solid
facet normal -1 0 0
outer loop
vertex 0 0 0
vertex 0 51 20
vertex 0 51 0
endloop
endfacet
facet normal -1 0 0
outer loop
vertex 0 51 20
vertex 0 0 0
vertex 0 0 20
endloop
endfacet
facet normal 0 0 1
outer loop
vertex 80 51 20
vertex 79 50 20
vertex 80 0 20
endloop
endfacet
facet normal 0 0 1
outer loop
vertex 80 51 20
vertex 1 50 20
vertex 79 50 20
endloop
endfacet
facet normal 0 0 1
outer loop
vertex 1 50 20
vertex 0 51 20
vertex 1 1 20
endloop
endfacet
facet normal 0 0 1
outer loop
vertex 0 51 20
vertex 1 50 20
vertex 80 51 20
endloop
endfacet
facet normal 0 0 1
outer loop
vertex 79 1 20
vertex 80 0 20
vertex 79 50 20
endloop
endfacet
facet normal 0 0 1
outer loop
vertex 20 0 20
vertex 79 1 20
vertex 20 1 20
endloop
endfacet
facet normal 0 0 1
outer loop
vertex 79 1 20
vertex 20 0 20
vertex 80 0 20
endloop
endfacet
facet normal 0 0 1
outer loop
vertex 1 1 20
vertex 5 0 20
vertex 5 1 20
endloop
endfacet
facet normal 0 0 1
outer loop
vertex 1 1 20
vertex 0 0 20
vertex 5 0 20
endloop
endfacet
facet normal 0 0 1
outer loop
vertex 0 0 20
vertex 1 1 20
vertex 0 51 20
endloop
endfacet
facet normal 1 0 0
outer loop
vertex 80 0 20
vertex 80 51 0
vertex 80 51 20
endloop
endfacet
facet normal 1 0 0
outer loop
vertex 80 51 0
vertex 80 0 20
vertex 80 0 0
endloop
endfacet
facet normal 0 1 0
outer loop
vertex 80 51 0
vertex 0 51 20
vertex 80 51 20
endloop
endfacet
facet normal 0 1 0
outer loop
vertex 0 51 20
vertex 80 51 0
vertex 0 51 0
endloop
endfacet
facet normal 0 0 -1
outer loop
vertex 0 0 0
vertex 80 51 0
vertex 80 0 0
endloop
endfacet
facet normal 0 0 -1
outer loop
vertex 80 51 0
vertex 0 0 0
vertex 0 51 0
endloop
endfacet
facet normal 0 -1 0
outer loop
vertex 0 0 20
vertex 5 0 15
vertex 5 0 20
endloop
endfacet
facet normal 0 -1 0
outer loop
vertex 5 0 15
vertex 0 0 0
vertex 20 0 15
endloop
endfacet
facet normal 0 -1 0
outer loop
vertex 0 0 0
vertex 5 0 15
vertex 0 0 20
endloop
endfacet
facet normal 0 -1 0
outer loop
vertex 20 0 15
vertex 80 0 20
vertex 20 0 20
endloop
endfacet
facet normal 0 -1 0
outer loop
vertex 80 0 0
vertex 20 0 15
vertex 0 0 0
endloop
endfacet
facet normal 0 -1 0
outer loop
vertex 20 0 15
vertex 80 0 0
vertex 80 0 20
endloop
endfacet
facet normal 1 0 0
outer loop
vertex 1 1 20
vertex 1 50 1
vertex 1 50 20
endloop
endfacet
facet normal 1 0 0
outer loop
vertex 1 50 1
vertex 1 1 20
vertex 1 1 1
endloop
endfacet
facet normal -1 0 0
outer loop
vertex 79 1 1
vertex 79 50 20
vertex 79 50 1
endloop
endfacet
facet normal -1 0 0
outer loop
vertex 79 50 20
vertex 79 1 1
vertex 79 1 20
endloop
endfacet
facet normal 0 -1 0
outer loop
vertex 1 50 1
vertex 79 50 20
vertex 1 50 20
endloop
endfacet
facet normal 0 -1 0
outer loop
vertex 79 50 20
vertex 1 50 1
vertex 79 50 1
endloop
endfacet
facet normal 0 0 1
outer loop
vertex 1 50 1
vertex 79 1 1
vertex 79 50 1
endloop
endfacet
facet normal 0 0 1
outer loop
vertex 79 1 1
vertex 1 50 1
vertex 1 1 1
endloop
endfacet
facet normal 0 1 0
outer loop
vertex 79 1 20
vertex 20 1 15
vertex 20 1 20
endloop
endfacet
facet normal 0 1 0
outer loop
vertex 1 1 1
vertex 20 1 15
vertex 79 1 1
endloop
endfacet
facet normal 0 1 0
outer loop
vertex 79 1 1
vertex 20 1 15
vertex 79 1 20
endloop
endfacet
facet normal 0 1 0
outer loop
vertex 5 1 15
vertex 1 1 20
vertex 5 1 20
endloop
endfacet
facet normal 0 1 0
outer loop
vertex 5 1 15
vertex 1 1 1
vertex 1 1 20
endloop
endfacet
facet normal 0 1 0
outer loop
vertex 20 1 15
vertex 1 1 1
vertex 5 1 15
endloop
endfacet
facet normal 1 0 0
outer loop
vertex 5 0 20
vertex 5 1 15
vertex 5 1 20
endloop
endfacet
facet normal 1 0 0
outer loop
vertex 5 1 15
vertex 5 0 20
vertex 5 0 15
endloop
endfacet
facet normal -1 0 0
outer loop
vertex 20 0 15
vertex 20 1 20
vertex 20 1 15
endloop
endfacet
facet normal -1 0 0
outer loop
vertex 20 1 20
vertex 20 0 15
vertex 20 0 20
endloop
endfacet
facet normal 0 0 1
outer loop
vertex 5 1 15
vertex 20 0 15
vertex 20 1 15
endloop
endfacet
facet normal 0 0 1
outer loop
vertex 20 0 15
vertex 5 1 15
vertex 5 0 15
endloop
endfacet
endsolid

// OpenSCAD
pbox=20; //profondeur
hbox=80; //hauteur
lbox=51; //largeur
ebox=1; //epaisseur
hscreen=29;
lscreen=28;
pibox=19; //profondeur interrieure
hibox=hbox-ebox*2;
libox=lbox-ebox*2;

difference() {
    cube([hbox,lbox,pbox]); 
translate([ebox,ebox,ebox]) 
    cube([hibox,libox,pibox]);  
translate([5,0,20-5]) 
    cube([15,ebox,5]);
}


/*
union() {
difference() {
 union() {
translate ([0,0,pbox])    cube([hbox,lbox,ebox]);
translate ([ebox,ebox,pibox])cube([hibox,libox,ebox]);
 }
// 30 pour le cadre + 3 de decalage a gauche
translate ([10,lbox-33,pibox]) cube([hscreen,lscreen,pibox]);
//distance bord 3milli
 }
translate([hibox,lbox/4,pibox-2]) cube([1,hbox/3,2]);
 translate([ebox,lbox/4,pibox-2]) cube([1,hbox/3,2]);
 translate([hbox/4,ebox,pibox-10]) cube([hbox/2.2,1,10]);
 translate([hbox/4,libox,pibox-10]) cube([hbox/2.2,1,10]);
}
*/
